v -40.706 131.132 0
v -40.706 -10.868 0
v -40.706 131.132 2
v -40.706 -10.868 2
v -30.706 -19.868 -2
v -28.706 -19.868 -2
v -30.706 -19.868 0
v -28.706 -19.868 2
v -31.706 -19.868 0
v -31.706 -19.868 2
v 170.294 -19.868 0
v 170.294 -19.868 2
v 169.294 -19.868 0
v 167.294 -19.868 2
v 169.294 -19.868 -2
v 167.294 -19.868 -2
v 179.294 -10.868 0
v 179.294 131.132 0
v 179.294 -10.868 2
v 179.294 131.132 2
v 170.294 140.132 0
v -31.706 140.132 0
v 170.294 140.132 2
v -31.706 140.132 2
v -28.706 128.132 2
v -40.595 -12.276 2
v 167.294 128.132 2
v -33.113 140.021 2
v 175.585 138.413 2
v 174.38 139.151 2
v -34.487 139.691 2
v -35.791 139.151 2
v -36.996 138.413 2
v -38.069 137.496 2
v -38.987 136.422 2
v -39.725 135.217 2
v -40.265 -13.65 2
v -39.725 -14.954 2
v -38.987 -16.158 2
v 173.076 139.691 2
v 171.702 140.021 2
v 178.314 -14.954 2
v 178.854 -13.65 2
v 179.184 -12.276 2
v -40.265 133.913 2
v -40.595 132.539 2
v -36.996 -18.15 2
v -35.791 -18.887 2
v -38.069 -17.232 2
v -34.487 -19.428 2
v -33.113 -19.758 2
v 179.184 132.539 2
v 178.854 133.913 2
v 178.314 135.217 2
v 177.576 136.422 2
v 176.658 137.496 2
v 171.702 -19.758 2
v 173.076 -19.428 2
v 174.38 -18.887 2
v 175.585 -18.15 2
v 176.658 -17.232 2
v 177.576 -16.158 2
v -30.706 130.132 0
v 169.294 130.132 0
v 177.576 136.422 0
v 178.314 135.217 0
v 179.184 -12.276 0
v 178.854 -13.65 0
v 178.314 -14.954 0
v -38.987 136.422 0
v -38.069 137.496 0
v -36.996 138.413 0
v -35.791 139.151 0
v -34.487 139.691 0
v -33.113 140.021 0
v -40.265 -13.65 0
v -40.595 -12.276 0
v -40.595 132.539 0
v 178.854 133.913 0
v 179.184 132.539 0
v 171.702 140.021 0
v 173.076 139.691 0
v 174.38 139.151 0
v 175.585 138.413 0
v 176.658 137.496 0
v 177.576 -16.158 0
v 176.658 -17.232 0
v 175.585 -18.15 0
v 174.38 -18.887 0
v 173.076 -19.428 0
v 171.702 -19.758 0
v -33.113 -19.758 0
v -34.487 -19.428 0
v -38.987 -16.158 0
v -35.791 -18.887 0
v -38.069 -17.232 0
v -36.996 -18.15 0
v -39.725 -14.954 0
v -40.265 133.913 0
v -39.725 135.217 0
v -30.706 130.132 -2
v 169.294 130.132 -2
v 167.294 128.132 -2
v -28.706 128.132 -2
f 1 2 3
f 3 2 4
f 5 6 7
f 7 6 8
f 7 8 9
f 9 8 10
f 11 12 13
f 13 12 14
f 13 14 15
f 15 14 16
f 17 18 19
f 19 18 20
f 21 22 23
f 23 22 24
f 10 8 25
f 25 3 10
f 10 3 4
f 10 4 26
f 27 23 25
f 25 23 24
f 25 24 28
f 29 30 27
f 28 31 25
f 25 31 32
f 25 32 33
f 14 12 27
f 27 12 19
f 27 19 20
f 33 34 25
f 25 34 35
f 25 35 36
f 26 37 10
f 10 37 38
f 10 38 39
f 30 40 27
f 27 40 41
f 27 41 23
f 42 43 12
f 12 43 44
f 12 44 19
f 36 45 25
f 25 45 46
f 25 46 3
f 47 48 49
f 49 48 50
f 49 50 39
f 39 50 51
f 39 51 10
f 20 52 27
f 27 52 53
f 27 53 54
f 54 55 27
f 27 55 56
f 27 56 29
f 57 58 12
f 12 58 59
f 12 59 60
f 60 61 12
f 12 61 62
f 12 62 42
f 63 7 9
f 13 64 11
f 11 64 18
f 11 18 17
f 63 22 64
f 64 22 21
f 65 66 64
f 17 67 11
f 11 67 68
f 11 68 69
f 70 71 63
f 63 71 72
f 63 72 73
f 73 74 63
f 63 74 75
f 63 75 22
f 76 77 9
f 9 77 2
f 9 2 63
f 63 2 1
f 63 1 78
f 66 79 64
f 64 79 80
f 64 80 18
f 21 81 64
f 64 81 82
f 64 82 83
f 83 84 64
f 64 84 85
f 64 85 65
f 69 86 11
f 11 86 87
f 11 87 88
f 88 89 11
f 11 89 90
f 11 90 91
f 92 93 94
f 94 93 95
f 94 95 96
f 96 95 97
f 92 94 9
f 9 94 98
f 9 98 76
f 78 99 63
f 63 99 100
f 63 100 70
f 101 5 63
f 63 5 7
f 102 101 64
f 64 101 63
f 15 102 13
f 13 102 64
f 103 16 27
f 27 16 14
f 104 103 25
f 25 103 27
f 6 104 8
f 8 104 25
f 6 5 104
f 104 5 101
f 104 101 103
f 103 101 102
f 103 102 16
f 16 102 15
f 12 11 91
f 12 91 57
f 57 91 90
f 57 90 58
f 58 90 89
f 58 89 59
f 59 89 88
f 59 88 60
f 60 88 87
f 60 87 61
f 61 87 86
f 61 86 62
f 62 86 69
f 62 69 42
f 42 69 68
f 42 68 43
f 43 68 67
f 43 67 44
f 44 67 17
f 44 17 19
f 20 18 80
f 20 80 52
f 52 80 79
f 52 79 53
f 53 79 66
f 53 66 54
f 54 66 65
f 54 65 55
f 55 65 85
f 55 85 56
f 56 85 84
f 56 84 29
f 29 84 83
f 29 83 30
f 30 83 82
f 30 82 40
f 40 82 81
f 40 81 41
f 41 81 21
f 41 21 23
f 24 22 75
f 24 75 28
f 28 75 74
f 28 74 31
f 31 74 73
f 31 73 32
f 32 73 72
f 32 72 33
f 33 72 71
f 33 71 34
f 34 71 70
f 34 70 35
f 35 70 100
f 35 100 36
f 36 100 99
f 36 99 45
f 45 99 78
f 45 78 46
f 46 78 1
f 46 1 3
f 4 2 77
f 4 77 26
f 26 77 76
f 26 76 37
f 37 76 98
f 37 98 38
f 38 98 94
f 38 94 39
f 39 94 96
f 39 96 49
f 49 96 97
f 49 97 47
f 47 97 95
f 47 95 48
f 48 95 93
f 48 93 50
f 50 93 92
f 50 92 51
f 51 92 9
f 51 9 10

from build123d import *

# Parameters (mm, degrees)
BOSS_EXTRU_1_DEPTH = 2
BOSS_EXTRU_2_START = 2
BOSS_EXTRU_2_DEPTH = 4
CONG_1_R           = 9


with BuildPart() as part:
    # Esquisse1 → Boss.-Extru.1 (new body)
    with BuildSketch(Plane.XY):
        Polygon((-40.70550554, -19.868421053), (-30.70550554, -19.868421053), (-30.70550554, 130.131578947), (169.29449446, 130.131578947), (169.29449446, -19.868421053), (179.29449446, -19.868421053), (179.29449446, 140.131578947), (-40.70550554, 140.131578947), align=None)
    extrude(amount=BOSS_EXTRU_1_DEPTH)

    # Esquisse2 → Boss.-Extru.2 (add)
    with BuildSketch(Plane.XY.offset(BOSS_EXTRU_2_START)):
        Polygon((-30.70550554, -19.868421053), (-28.70550554, -19.868421053), (-28.70550554, 128.131578947), (167.29449446, 128.131578947), (167.29449446, -19.868421053), (169.29449446, -19.868421053), (169.29449446, 130.131578947), (-30.70550554, 130.131578947), align=None)
    extrude(amount=-BOSS_EXTRU_2_DEPTH)

    # Congé1
    cong_1_edges = [part.edges().sort_by_distance(p)[0] for p in [
        (-40.70550554, 140.131578947, 1),
        (179.29449446, 140.131578947, 1),
        (179.29449446, -19.868421053, 1),
        (-40.70550554, -19.868421053, 1),
    ]]
    fillet(cong_1_edges, radius=CONG_1_R)


solid = part.part
